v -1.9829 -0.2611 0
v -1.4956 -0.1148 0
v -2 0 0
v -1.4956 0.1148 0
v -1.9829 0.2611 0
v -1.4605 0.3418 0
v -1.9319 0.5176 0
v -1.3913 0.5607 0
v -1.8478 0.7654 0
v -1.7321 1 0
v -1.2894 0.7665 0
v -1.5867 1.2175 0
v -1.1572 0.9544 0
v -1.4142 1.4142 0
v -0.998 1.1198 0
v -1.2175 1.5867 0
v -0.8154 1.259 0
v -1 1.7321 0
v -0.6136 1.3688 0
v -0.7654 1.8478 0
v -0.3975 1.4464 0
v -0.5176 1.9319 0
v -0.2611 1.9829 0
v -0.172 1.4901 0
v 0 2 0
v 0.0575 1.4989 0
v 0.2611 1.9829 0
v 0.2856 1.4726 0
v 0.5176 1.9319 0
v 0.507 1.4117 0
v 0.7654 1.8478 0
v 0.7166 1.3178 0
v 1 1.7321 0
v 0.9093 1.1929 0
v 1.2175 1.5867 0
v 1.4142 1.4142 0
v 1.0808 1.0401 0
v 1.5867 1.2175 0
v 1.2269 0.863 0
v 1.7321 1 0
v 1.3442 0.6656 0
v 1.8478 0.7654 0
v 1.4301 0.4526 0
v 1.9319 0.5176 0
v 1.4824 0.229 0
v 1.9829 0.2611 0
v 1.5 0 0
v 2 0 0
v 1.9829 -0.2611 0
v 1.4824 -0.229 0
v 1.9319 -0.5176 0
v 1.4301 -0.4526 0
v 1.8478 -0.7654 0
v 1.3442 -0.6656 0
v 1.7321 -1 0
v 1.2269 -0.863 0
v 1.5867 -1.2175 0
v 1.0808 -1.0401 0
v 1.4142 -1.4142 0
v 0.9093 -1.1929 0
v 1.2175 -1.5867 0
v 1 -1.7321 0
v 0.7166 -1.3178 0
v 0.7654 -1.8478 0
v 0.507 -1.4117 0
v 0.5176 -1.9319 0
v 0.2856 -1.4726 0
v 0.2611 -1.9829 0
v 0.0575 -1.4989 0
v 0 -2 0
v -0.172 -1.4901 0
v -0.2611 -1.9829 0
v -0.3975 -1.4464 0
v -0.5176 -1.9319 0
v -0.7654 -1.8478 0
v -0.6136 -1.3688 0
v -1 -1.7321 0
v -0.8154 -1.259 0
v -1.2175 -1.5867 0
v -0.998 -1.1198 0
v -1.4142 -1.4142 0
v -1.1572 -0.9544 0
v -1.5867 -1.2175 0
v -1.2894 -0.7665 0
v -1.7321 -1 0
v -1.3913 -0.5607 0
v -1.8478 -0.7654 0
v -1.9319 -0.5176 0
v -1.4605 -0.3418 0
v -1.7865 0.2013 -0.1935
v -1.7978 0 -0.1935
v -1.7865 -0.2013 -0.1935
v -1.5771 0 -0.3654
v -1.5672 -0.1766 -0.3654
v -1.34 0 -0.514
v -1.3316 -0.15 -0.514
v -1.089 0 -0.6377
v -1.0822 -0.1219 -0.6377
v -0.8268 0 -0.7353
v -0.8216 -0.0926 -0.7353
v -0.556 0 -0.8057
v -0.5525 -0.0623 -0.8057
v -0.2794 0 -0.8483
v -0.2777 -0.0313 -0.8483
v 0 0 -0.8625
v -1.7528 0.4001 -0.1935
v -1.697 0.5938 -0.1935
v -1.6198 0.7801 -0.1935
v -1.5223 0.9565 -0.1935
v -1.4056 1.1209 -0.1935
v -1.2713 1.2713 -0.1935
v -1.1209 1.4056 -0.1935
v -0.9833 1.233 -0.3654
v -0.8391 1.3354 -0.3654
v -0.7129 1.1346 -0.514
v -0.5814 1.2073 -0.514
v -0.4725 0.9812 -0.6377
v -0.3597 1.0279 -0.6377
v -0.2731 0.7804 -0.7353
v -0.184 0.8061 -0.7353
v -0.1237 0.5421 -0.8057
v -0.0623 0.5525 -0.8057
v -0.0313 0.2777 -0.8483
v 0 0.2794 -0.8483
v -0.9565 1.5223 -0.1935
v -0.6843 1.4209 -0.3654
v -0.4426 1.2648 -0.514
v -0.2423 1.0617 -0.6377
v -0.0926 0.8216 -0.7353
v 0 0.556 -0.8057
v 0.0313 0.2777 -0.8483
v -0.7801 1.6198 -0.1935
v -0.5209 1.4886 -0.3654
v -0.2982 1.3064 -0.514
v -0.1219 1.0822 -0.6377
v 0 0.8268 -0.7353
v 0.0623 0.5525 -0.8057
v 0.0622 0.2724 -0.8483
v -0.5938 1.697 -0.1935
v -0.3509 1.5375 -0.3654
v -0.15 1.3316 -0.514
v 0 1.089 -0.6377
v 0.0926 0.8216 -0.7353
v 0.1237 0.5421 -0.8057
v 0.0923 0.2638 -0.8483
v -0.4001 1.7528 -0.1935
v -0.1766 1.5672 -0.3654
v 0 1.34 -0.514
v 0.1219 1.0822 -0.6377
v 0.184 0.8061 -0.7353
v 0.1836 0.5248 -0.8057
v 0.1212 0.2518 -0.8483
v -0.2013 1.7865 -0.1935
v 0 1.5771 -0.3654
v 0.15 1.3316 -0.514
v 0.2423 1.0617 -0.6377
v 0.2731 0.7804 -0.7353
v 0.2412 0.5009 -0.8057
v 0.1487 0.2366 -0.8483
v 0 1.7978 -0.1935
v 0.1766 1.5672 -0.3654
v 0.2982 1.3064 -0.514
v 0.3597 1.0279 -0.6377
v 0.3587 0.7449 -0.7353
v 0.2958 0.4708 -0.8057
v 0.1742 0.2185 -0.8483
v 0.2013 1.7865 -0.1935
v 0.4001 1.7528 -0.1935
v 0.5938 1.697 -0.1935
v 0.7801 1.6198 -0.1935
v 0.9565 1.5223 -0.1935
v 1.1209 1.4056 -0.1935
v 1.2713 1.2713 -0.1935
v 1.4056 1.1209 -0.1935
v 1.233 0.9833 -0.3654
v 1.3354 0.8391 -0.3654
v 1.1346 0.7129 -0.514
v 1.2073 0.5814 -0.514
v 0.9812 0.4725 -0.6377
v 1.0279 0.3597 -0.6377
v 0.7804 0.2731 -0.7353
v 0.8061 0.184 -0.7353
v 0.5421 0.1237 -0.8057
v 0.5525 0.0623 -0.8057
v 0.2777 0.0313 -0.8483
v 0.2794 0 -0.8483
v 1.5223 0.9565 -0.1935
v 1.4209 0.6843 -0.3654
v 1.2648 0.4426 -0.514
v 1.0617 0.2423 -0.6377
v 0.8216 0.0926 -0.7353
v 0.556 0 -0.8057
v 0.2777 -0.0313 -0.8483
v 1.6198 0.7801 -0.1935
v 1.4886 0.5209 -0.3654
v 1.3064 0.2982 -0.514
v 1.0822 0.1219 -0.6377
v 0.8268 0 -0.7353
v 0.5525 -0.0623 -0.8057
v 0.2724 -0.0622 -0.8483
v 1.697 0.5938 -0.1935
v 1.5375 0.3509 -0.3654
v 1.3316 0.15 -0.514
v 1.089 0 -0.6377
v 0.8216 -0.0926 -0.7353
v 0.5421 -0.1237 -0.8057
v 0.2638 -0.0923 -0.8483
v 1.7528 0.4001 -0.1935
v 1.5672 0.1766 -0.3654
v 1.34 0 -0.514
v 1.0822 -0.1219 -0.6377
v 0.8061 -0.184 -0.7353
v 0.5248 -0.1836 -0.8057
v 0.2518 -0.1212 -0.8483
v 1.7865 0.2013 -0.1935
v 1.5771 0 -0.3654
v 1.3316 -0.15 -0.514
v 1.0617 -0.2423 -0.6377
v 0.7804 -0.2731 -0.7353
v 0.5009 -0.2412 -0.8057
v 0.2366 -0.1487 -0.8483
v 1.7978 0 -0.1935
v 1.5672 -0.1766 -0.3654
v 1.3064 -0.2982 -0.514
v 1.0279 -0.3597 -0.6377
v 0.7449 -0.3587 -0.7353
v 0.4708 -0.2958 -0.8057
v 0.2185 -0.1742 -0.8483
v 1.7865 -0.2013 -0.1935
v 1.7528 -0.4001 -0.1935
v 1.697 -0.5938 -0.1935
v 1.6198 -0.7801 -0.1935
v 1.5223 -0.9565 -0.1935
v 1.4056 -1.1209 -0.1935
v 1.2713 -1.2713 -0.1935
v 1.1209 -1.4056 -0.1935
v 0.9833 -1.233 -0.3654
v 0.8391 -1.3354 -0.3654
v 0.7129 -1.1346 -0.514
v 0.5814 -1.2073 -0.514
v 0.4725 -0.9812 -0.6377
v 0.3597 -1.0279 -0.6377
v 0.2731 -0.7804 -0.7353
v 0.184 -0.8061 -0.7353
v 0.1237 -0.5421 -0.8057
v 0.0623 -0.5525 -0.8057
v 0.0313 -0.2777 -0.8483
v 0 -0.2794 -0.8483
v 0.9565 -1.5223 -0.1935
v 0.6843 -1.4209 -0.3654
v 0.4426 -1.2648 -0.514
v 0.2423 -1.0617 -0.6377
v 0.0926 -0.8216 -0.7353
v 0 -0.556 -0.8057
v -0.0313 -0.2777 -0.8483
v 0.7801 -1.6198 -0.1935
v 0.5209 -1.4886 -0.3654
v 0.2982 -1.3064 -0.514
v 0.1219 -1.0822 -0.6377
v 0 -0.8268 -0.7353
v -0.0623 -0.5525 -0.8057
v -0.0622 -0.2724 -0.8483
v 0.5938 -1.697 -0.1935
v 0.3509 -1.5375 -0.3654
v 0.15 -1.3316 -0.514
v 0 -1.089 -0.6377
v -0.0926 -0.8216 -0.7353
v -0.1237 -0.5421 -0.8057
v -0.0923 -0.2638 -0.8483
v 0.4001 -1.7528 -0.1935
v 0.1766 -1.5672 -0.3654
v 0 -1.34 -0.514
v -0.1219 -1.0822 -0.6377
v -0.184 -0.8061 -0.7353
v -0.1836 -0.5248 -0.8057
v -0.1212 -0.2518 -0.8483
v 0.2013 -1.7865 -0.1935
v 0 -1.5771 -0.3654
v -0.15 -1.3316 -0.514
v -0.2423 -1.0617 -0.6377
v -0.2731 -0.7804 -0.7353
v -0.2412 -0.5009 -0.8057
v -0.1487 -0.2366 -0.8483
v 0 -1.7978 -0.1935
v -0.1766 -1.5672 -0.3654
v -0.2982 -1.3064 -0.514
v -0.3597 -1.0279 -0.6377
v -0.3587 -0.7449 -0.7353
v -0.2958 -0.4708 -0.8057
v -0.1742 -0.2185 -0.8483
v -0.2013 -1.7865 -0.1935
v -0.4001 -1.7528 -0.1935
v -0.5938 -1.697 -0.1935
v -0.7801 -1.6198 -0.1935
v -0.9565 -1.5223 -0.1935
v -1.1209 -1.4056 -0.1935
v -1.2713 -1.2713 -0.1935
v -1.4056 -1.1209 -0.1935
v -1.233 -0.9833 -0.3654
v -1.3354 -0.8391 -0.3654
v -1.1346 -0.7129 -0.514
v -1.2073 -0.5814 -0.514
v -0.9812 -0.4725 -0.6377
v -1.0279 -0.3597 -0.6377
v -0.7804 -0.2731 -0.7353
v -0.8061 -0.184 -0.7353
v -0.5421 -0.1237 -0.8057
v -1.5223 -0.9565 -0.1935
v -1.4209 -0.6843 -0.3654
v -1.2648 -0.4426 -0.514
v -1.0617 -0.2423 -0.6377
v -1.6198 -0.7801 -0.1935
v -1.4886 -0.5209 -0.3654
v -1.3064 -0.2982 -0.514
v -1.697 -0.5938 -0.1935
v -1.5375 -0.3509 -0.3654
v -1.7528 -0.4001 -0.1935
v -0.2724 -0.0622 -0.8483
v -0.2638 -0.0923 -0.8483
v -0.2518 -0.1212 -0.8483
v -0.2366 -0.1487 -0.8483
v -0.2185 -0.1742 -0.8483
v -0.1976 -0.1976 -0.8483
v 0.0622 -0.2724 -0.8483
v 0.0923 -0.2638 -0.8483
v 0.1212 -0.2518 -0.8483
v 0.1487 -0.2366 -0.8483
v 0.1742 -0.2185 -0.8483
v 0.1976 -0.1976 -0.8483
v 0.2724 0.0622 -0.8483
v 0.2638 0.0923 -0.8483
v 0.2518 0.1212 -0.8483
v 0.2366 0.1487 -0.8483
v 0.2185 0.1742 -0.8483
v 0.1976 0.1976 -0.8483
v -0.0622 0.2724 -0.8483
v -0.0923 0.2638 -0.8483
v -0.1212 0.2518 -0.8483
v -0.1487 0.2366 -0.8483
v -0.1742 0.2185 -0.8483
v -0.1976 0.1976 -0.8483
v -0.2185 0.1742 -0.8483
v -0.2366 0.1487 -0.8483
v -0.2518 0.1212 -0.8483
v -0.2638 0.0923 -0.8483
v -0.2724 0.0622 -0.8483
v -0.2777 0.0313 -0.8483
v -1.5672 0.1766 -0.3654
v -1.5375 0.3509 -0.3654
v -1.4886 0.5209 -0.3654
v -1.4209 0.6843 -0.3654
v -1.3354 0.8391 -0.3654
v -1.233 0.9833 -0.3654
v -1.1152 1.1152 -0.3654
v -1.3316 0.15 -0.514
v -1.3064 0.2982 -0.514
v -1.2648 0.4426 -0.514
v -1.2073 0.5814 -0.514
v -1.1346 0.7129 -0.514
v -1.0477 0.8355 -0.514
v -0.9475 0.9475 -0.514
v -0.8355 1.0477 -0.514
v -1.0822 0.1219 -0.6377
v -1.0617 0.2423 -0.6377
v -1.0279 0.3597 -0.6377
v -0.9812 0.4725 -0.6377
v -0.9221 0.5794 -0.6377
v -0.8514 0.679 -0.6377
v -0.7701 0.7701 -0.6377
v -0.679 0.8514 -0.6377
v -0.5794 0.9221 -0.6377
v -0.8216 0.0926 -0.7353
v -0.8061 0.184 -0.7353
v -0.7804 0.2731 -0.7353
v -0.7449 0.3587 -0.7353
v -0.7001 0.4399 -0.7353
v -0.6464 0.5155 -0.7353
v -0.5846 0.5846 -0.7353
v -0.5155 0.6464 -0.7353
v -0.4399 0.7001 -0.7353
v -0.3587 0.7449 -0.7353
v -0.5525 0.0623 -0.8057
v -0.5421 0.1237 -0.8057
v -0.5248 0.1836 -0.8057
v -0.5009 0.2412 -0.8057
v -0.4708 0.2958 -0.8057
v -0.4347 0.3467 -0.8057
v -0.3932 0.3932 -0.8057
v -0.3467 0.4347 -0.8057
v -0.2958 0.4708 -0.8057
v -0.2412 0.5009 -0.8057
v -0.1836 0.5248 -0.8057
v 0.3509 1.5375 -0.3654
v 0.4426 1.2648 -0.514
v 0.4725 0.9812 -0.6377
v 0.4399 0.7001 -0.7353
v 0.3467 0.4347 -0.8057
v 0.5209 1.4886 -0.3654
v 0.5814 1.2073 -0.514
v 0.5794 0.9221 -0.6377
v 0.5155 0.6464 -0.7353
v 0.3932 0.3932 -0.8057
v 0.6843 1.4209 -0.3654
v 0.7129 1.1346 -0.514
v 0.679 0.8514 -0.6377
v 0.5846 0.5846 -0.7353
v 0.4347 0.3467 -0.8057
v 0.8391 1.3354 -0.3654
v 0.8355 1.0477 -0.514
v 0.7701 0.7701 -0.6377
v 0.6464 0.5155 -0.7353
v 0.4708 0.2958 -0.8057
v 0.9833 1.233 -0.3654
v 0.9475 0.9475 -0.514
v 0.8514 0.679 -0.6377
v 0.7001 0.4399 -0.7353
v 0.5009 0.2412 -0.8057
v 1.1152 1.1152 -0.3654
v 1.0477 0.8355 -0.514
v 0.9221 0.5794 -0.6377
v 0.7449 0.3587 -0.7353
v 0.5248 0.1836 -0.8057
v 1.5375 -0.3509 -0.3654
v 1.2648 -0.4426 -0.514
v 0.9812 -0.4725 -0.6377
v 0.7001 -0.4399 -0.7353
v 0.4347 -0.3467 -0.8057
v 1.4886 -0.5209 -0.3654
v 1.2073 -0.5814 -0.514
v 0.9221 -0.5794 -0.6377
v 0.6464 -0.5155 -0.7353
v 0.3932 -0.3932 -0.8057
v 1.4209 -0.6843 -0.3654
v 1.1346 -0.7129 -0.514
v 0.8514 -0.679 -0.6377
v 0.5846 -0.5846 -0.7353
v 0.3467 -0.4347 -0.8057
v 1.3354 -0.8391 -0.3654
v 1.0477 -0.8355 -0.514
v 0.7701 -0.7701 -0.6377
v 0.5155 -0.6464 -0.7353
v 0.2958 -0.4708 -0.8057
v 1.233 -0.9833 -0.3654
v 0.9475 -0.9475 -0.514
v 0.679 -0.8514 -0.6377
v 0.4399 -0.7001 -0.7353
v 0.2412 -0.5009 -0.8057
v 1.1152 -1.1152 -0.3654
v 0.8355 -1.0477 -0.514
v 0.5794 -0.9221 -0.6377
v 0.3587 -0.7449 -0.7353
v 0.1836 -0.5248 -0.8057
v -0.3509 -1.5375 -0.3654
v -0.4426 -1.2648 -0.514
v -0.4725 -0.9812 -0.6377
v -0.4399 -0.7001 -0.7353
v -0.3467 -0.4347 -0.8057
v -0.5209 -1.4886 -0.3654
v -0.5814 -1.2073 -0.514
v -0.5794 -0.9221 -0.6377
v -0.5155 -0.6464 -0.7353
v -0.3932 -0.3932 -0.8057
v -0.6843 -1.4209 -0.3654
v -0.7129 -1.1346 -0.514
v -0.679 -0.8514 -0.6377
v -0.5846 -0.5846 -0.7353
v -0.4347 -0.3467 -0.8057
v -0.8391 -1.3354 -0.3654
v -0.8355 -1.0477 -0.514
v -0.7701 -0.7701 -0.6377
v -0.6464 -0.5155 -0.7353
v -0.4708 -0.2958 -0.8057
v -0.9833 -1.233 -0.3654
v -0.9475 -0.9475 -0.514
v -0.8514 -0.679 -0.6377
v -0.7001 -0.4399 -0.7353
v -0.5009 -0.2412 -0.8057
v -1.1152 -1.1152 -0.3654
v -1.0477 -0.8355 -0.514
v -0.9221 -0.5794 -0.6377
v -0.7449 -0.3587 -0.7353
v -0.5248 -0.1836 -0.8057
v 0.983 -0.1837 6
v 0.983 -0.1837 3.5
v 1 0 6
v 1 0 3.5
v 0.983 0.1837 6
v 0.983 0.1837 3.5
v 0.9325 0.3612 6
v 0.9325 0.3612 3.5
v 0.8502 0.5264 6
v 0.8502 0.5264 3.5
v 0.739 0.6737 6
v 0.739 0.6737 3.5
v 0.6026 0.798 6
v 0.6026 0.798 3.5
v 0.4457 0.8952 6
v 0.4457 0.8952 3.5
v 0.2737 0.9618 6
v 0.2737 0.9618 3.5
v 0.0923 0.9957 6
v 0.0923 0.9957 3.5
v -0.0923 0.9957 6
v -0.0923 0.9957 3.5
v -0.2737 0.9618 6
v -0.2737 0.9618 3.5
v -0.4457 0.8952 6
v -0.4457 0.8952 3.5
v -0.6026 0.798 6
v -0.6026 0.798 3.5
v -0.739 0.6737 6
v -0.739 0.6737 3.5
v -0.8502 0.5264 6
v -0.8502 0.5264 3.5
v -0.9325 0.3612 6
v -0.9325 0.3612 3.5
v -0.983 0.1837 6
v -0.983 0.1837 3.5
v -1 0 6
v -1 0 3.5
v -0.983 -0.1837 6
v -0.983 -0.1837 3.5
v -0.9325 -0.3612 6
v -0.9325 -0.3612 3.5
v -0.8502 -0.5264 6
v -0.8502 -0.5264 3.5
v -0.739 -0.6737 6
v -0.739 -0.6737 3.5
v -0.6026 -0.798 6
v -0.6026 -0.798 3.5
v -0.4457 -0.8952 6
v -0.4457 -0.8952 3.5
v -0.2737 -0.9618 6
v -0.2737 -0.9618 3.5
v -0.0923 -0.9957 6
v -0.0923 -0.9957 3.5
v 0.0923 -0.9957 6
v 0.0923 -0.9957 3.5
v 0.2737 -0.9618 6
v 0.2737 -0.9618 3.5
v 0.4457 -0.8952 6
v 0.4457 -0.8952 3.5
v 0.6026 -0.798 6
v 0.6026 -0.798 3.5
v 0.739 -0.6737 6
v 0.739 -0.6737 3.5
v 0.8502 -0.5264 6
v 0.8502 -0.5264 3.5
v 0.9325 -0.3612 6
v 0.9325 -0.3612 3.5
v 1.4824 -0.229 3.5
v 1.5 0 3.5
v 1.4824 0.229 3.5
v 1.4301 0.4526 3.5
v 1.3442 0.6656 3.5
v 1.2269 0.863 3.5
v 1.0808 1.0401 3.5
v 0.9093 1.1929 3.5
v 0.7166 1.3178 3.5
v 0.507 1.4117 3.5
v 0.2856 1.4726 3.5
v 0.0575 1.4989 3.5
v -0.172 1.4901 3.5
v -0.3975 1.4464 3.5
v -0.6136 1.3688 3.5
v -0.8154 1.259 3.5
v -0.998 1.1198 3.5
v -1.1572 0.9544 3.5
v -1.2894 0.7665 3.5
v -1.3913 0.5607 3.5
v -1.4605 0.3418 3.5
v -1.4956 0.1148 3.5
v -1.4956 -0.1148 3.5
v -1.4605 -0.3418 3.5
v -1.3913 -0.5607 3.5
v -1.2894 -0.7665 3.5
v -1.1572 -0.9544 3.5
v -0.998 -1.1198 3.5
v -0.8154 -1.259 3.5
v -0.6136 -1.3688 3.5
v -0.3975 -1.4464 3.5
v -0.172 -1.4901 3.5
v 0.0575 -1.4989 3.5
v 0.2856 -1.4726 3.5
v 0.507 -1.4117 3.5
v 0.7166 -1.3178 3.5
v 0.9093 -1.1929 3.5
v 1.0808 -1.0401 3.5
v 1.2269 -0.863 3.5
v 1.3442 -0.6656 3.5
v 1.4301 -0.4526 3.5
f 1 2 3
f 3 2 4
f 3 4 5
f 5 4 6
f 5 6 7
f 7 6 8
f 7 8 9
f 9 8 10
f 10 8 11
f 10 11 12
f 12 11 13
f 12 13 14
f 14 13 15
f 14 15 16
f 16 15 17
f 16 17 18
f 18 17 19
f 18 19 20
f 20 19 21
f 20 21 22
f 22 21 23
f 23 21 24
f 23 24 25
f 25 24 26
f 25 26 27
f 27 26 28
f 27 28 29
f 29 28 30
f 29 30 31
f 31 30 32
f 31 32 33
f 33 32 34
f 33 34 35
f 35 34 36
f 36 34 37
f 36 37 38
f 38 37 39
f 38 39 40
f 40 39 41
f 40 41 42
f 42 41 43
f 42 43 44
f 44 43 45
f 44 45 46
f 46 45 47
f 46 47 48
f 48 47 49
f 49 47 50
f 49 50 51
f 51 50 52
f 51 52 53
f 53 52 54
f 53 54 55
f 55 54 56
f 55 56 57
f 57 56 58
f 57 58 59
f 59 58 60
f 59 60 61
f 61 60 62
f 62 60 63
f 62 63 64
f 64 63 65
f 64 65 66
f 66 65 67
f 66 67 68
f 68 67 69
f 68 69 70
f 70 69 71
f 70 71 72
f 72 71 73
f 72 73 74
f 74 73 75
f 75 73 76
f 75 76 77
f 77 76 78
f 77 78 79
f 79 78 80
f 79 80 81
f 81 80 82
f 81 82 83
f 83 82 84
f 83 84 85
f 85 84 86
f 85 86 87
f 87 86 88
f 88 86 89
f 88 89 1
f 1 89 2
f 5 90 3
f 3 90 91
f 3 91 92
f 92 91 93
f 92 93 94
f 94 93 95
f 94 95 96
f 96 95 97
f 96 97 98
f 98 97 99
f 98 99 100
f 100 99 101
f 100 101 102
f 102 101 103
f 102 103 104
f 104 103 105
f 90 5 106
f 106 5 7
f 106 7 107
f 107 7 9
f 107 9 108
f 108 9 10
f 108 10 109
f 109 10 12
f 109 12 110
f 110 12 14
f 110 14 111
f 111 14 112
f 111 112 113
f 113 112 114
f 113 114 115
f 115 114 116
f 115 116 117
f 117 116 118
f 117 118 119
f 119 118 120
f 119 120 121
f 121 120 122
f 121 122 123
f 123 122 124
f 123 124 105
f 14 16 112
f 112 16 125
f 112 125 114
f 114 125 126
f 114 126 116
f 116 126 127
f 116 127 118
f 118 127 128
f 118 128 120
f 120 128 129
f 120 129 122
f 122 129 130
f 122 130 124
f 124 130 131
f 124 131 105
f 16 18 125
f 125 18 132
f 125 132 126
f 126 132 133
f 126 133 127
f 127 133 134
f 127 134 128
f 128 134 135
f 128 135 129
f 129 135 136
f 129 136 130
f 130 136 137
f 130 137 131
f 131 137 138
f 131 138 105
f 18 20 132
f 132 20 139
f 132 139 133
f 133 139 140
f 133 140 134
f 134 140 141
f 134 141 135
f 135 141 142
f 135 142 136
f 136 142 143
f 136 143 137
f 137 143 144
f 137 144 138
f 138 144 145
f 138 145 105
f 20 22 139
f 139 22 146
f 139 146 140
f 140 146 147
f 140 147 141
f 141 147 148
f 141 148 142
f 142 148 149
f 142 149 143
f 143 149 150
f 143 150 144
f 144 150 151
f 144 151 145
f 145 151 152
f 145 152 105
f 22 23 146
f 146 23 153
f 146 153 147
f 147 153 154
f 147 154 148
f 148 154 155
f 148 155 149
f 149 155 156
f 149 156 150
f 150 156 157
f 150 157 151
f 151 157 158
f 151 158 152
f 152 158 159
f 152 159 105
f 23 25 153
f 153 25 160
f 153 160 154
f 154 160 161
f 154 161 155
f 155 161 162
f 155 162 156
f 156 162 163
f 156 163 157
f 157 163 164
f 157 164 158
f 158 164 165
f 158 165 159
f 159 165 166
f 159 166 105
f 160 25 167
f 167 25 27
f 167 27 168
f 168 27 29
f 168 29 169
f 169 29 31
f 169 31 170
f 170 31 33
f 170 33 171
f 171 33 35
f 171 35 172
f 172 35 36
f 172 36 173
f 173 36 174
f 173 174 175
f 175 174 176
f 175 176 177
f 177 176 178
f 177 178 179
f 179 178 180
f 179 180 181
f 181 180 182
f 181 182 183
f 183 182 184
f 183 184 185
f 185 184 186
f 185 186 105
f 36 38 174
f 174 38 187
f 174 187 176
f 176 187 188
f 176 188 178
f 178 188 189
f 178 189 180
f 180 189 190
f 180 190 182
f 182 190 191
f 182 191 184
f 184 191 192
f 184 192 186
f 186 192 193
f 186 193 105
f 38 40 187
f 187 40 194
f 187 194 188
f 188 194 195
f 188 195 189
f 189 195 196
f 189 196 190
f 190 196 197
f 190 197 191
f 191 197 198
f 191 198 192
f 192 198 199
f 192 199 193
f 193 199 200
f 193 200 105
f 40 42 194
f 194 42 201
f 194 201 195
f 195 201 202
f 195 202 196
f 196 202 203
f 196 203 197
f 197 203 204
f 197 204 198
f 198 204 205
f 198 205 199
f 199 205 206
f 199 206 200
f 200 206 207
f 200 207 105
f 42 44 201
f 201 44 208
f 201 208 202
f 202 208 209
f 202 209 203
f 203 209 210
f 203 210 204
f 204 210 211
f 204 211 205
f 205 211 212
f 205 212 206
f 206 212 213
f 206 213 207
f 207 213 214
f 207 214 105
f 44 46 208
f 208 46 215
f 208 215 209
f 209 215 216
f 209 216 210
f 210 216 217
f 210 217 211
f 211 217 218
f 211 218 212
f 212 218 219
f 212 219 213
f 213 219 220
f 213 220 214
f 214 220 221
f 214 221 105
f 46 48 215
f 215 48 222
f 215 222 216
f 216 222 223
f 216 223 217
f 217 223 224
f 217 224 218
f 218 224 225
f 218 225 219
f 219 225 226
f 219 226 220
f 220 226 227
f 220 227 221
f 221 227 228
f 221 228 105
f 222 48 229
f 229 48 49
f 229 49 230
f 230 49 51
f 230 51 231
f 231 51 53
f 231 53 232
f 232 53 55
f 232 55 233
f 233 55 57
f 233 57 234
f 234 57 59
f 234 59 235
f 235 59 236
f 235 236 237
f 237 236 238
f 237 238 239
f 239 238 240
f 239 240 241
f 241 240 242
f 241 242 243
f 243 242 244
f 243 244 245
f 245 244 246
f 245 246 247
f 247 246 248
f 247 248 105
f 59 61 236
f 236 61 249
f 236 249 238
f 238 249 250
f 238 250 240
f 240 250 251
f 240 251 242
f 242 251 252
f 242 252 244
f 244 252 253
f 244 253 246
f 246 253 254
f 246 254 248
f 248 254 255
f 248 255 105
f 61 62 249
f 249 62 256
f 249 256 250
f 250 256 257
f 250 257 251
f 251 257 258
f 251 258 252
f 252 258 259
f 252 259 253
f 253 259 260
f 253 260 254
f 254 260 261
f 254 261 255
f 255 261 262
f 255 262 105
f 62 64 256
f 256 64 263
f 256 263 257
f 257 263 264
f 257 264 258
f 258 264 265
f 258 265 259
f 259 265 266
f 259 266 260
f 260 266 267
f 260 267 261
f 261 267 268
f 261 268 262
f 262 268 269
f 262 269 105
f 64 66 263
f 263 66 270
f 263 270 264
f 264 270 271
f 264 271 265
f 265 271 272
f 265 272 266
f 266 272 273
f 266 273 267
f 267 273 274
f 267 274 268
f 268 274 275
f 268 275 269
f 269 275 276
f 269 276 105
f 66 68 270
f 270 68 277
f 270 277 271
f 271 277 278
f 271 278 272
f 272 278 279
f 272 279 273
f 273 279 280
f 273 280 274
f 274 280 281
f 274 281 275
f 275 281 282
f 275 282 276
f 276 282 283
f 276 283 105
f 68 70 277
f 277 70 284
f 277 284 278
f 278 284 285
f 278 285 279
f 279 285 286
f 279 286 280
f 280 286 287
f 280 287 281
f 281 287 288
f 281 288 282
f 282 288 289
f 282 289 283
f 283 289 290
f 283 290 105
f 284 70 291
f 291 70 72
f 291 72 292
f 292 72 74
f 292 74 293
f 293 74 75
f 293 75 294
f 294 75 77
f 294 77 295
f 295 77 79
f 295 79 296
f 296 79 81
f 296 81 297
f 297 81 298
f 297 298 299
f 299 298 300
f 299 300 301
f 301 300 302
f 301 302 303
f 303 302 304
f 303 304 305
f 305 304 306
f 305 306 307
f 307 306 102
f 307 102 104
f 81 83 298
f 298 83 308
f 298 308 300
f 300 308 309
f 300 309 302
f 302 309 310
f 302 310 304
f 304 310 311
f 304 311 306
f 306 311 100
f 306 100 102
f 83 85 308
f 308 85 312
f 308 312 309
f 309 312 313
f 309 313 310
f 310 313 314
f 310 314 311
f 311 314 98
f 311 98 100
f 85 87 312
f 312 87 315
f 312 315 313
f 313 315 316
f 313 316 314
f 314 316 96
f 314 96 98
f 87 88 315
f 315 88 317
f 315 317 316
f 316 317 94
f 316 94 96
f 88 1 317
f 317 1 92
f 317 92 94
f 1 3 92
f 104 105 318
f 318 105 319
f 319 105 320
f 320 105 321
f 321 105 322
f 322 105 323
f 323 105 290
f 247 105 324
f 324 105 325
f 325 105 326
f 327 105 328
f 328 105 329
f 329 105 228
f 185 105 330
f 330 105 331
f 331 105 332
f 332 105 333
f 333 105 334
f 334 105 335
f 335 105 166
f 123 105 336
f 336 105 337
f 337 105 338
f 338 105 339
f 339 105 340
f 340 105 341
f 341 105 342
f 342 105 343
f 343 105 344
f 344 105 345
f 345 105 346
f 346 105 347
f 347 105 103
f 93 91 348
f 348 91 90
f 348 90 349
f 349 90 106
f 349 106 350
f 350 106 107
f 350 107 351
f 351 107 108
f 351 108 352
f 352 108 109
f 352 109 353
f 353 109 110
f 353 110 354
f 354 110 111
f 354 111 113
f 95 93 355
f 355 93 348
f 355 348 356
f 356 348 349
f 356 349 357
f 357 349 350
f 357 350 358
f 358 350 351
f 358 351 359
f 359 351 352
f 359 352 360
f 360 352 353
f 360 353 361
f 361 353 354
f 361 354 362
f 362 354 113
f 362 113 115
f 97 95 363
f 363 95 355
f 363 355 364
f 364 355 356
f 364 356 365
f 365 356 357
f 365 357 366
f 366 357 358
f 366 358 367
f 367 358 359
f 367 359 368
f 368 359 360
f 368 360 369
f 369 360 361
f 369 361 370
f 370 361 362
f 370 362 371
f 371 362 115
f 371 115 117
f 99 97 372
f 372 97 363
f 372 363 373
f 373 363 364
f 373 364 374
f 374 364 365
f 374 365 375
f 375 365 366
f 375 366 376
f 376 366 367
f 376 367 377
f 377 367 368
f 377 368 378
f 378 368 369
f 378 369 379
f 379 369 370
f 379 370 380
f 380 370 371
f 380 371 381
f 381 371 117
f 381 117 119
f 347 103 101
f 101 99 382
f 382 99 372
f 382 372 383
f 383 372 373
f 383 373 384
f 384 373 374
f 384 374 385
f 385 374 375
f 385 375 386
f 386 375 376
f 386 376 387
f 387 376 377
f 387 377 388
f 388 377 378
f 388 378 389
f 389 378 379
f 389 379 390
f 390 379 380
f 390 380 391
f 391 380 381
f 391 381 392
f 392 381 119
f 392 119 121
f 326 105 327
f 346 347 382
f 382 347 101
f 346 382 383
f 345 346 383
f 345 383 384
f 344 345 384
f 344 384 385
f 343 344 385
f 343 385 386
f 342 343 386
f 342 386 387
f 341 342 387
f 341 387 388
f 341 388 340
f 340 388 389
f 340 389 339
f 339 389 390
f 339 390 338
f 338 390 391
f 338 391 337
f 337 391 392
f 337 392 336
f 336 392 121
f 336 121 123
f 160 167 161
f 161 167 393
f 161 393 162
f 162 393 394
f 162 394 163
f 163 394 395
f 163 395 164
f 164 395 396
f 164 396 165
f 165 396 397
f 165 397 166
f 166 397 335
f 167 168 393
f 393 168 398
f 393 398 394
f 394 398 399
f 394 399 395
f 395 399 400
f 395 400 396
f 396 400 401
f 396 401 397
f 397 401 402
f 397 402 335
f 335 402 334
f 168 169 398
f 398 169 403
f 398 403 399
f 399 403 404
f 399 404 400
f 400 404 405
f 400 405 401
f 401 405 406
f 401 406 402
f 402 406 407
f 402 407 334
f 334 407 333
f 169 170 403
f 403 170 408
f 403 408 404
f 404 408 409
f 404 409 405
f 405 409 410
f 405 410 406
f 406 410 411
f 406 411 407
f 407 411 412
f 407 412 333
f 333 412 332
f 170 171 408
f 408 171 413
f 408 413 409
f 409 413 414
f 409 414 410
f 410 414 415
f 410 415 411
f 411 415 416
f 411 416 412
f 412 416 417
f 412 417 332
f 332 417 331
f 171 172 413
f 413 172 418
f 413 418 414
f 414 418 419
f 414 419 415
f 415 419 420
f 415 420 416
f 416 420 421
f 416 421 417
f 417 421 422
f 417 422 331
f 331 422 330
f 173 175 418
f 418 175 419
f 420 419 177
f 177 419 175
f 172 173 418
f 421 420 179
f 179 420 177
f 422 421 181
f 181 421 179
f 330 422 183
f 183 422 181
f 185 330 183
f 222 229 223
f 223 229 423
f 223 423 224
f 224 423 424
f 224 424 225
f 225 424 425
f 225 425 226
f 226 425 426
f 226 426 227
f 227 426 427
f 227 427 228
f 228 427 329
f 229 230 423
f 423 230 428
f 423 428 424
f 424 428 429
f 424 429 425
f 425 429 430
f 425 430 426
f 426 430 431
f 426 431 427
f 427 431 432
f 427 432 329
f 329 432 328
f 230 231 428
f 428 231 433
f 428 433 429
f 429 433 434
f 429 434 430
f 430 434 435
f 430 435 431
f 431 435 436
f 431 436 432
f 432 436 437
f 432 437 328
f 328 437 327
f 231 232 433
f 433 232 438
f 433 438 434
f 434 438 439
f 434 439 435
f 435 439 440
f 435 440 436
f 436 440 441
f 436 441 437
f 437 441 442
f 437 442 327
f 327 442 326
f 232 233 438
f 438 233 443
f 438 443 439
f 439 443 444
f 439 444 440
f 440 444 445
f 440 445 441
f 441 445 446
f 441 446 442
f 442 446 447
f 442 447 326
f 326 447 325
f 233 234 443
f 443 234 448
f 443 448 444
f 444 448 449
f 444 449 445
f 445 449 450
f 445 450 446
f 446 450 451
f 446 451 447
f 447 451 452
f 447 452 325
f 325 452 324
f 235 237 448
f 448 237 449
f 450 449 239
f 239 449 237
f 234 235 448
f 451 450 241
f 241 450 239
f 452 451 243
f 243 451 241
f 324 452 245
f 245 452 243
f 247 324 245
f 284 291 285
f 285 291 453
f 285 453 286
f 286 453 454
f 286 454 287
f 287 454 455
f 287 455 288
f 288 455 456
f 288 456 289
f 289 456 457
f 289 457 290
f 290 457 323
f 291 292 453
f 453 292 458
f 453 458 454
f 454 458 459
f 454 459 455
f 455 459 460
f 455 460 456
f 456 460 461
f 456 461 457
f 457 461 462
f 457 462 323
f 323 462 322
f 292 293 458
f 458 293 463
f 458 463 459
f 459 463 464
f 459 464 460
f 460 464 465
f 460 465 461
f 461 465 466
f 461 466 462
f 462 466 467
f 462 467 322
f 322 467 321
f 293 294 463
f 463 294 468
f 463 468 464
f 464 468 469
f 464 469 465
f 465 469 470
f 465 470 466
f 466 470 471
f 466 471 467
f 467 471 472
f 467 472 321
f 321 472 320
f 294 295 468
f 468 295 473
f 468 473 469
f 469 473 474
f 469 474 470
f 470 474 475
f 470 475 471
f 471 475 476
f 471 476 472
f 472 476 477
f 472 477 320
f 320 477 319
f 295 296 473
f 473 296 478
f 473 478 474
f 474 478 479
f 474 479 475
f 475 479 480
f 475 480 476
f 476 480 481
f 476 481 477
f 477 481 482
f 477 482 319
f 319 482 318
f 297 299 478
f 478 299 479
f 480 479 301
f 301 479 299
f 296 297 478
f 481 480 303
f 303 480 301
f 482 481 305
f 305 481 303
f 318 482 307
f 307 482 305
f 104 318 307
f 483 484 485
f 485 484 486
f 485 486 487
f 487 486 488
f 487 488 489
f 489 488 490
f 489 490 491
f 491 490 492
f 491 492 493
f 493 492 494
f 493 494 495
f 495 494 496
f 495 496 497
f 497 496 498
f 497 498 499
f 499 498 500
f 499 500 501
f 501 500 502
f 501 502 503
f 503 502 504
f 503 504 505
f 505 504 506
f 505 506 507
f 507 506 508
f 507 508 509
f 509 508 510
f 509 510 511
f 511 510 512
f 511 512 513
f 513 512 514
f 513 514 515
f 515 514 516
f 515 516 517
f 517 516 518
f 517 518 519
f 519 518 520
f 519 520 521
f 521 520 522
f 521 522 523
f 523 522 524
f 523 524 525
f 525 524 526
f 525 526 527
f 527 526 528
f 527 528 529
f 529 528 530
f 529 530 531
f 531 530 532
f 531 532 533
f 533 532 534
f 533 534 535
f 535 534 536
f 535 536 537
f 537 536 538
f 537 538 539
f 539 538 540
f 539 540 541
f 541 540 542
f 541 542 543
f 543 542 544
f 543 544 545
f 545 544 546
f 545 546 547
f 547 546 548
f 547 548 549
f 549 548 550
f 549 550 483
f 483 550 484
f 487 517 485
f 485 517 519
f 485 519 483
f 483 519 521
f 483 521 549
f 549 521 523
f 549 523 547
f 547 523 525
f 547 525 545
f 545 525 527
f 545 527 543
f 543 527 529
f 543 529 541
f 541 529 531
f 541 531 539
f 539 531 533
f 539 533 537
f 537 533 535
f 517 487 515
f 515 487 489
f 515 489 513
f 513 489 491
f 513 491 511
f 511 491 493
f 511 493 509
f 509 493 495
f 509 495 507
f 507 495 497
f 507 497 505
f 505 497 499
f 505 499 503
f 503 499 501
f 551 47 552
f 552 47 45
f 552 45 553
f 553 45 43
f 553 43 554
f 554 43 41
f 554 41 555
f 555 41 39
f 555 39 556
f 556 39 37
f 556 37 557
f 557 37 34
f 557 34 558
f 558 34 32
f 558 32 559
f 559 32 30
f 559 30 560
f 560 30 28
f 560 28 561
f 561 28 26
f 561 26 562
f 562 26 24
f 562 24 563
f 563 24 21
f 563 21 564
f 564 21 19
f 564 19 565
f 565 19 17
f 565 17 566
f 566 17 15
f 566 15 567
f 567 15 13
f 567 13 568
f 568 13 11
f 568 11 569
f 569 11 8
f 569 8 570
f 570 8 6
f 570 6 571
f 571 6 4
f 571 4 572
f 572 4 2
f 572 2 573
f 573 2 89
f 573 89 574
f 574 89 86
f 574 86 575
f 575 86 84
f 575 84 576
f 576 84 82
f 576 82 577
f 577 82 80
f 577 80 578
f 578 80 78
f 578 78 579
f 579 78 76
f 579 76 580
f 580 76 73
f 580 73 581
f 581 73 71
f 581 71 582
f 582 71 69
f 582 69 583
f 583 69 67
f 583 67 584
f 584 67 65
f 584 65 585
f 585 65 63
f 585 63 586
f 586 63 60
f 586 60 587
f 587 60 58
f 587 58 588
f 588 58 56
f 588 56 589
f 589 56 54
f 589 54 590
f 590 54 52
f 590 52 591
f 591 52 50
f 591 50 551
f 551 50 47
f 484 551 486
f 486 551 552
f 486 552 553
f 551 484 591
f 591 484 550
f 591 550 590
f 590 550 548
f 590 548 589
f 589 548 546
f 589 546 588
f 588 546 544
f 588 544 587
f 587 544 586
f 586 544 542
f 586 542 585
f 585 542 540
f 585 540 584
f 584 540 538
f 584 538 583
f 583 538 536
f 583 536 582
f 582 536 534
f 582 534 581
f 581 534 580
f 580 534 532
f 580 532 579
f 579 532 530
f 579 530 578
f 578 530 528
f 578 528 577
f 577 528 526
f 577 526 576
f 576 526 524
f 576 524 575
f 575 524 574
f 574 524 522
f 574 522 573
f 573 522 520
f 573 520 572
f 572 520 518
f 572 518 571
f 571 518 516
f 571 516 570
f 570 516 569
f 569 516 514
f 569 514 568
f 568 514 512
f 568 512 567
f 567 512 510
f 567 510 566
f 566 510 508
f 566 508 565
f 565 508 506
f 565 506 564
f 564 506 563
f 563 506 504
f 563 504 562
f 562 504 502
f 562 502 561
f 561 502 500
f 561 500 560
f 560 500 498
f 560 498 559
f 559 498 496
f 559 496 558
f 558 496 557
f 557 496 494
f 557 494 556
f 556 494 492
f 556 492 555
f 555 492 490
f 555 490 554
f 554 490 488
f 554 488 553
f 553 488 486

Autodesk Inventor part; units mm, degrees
ref_plane "YZ Plane" through (0, 0, 0) normal (1, 0, 0) x (0, 1, 0)
ref_plane "XZ Plane" through (0, 0, 0) normal (0, 1, 0) x (-1, 0, 0)
ref_plane "XY Plane" through (0, 0, 0) normal (0, 0, 1) x (1, 0, 0)
sketch "Skizze1" plane through (0, 0, 0) normal (0, 0, 1) x (1, 0, 0)
  circle A0 centre (0, 0) radius 1.5
  dimension "d0" = 3
extrude "Extrusion1" add sketch "Skizze1" along normal blind 3.5
sketch "Skizze2" plane through (0, 0, 3.5) normal (0, 0, 1) x (1, 0, 0)
  circle A0 centre (0, 0) radius 1
  dimension "d3" = 2
extrude "Extrusion2" add sketch "Skizze2" along normal blind 2.5
sketch "Skizze3" plane through (0, 0, 0) normal (0, 1, 0) x (-1, 0, 0)
  line L0 (0, 0) -> (2, 0)
  line L1 (1.5, 0) -> (-1.5, 0) projected
  arc A0 (-2, 0) -> (2, 0) centre (0, 1.8875) ccw
  line L2 (0, 0) -> (0, -0.8625)
  dimension "d6" = 2
  dimension "d7" = 4
  dimension "d8" = 2.75
revolve "Umdrehung1" add sketch "Skizze3" angle 360 about axis through (0, 0, 0) along (0, 0, -1)
thread "Gewinde1" size "M2x0.25" class "6g" standard "ANSI Metric M Profile" length 10
properties part number "m2mit025"
